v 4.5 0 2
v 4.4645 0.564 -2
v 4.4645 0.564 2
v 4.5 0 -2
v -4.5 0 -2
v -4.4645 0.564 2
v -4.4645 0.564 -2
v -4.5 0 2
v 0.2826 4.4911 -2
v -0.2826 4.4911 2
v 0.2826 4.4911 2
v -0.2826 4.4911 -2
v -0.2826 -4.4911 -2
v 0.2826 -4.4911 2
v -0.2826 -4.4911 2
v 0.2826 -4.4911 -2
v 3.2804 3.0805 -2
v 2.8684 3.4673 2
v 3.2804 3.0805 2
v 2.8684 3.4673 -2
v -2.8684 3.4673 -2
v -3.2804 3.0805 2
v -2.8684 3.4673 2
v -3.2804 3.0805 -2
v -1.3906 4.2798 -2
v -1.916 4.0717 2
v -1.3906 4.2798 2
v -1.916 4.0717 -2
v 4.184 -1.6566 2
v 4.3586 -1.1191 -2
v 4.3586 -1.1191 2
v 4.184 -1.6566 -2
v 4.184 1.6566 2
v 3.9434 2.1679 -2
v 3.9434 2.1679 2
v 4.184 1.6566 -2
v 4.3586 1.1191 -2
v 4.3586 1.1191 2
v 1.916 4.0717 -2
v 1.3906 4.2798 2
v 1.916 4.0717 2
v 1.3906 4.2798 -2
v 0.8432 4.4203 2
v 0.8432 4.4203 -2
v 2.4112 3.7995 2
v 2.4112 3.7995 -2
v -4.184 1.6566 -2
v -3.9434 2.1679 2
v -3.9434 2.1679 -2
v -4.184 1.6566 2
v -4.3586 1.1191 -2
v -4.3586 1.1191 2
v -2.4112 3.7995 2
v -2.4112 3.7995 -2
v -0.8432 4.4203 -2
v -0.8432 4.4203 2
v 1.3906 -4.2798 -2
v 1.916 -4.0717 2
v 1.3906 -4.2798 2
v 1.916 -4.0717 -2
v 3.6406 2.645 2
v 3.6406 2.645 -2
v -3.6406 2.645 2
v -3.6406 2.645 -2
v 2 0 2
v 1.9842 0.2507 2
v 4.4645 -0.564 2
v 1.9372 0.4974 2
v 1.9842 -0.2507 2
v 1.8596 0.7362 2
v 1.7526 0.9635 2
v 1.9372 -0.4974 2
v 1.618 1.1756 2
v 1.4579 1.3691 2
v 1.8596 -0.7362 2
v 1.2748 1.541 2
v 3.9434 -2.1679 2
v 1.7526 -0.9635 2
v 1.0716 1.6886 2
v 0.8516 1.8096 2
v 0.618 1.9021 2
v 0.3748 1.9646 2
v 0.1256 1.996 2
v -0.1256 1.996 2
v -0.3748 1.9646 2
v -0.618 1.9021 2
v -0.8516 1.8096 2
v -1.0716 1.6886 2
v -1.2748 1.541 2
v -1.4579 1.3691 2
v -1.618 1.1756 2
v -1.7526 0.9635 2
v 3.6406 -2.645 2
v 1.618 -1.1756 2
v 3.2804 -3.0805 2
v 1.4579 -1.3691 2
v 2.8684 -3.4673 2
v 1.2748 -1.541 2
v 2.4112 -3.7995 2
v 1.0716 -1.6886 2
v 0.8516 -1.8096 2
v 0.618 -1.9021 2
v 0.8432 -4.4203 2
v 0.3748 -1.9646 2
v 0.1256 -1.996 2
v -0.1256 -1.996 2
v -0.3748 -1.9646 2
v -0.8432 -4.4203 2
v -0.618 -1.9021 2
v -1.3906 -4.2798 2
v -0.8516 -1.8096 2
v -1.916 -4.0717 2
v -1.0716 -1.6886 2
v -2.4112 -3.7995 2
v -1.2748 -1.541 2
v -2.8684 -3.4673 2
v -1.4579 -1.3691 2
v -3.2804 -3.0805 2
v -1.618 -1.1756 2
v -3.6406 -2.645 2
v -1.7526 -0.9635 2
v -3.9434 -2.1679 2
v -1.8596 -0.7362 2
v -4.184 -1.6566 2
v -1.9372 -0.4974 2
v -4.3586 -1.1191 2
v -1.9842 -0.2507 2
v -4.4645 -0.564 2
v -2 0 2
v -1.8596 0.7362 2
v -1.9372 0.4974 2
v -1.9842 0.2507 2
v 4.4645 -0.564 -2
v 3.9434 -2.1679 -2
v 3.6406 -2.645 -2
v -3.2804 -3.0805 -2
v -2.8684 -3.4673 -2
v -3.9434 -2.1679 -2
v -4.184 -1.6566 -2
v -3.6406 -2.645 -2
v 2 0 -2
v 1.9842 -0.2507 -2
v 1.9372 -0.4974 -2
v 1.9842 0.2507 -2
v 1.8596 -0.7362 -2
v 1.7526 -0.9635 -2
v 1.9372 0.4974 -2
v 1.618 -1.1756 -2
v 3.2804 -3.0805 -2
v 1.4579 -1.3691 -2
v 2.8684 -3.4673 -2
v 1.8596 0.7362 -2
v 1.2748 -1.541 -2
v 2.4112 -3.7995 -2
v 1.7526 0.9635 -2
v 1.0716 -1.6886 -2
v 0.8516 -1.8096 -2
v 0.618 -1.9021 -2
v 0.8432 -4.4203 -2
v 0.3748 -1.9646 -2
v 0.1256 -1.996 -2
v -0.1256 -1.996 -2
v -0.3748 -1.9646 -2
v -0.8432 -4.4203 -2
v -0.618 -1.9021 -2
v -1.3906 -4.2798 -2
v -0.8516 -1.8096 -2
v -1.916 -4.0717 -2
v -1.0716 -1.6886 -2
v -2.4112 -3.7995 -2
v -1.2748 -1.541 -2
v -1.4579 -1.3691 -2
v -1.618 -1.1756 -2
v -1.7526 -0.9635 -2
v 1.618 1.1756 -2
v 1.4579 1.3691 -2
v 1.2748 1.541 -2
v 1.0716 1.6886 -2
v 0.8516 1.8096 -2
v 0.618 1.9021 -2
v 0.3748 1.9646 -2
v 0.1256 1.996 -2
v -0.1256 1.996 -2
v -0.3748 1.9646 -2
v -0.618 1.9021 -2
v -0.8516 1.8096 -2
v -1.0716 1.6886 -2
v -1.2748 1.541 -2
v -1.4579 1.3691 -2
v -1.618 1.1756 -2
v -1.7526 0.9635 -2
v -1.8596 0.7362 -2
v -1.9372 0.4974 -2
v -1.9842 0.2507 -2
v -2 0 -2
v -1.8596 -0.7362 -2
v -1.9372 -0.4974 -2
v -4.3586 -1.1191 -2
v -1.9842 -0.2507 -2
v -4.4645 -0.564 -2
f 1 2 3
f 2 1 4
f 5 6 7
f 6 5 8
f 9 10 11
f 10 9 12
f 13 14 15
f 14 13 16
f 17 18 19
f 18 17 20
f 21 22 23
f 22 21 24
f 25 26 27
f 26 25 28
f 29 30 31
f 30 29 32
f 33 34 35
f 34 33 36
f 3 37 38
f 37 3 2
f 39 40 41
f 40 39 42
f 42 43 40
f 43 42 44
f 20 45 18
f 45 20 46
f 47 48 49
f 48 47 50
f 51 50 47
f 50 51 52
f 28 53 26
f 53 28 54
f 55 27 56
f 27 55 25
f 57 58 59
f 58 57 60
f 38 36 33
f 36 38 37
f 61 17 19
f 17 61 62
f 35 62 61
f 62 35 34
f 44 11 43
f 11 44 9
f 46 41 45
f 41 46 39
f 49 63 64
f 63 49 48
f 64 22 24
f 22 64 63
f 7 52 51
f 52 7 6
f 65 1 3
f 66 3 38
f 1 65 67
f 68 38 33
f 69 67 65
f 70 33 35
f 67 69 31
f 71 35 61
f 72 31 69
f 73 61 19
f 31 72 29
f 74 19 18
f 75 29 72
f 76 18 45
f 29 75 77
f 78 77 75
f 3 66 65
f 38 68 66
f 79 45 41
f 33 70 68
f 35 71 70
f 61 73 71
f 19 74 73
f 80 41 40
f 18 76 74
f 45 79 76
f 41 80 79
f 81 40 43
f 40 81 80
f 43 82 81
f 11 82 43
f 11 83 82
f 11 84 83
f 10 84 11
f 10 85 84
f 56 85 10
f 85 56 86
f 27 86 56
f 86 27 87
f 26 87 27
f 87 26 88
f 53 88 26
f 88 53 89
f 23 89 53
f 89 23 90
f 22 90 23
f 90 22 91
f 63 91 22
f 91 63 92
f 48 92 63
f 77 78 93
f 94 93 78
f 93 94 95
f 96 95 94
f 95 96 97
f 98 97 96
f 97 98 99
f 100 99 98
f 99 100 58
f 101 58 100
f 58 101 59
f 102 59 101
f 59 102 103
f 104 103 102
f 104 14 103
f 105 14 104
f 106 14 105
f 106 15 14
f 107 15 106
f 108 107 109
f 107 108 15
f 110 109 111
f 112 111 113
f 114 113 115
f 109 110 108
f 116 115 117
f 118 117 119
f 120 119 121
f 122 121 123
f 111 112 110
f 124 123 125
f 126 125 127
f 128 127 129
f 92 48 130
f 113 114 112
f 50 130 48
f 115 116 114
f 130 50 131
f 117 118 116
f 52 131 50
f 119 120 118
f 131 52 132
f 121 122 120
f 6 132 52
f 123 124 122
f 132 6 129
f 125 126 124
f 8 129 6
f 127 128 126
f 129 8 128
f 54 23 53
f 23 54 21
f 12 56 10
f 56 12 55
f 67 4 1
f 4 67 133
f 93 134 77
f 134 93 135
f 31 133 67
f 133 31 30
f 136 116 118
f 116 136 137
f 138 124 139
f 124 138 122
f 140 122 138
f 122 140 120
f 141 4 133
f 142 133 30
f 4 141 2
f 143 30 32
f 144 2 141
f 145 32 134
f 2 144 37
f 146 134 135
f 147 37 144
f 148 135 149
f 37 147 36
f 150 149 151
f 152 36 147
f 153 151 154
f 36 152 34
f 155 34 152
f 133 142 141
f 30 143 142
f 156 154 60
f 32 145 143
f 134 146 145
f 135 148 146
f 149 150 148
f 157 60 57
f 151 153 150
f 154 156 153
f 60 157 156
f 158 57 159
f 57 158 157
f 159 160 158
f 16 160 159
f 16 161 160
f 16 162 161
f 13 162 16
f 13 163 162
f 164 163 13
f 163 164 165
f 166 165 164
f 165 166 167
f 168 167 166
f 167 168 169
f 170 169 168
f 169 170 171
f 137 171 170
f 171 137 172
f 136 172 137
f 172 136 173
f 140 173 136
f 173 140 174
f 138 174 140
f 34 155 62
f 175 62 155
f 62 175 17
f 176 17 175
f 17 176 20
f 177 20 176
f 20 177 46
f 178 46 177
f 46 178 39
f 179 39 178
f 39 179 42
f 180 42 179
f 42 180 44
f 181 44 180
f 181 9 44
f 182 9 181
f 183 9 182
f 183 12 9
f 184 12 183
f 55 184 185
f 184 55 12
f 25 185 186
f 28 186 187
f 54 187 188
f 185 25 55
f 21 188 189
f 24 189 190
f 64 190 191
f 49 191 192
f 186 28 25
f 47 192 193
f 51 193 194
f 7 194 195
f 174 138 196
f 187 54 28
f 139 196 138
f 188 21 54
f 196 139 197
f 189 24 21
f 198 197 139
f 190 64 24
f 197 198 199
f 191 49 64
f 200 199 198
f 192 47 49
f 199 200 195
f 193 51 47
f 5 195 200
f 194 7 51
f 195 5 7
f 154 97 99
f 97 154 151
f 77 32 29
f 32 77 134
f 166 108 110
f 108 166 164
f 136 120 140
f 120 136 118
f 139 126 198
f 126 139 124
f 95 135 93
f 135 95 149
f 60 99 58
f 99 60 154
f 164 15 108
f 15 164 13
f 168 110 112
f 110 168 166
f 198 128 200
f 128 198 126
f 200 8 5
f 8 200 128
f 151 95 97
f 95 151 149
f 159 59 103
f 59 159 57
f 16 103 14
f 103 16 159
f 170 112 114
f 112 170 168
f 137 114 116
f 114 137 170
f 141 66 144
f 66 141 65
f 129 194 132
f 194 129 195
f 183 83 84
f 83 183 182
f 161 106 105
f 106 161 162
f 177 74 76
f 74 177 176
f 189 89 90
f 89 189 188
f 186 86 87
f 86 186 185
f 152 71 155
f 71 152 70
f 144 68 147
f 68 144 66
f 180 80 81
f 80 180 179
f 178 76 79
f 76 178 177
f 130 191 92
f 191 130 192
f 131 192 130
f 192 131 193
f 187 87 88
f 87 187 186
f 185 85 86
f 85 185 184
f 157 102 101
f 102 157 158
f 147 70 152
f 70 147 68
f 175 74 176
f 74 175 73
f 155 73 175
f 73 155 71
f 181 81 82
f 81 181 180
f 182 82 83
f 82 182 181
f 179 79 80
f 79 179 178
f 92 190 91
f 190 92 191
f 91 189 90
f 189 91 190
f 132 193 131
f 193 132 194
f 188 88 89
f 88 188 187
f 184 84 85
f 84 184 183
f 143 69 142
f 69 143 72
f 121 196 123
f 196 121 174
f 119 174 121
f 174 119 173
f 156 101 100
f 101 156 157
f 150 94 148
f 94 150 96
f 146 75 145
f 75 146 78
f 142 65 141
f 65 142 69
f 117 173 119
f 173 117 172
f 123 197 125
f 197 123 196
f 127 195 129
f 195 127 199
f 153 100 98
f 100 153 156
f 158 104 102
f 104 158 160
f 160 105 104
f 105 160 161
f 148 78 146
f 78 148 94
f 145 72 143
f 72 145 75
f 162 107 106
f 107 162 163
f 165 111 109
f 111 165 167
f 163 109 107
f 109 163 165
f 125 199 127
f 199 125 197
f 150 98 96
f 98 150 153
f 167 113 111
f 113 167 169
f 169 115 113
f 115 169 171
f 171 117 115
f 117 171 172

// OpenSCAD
$fn = 50;


difference() {
	union() {
		translate(v = [0, 0, -2.0000000000]) {
			cylinder(h = 4, r = 4.5000000000);
		}
	}
	union() {
		translate(v = [0, 0, -100.0000000000]) {
			cylinder(h = 200, r = 2);
		}
	}
}
